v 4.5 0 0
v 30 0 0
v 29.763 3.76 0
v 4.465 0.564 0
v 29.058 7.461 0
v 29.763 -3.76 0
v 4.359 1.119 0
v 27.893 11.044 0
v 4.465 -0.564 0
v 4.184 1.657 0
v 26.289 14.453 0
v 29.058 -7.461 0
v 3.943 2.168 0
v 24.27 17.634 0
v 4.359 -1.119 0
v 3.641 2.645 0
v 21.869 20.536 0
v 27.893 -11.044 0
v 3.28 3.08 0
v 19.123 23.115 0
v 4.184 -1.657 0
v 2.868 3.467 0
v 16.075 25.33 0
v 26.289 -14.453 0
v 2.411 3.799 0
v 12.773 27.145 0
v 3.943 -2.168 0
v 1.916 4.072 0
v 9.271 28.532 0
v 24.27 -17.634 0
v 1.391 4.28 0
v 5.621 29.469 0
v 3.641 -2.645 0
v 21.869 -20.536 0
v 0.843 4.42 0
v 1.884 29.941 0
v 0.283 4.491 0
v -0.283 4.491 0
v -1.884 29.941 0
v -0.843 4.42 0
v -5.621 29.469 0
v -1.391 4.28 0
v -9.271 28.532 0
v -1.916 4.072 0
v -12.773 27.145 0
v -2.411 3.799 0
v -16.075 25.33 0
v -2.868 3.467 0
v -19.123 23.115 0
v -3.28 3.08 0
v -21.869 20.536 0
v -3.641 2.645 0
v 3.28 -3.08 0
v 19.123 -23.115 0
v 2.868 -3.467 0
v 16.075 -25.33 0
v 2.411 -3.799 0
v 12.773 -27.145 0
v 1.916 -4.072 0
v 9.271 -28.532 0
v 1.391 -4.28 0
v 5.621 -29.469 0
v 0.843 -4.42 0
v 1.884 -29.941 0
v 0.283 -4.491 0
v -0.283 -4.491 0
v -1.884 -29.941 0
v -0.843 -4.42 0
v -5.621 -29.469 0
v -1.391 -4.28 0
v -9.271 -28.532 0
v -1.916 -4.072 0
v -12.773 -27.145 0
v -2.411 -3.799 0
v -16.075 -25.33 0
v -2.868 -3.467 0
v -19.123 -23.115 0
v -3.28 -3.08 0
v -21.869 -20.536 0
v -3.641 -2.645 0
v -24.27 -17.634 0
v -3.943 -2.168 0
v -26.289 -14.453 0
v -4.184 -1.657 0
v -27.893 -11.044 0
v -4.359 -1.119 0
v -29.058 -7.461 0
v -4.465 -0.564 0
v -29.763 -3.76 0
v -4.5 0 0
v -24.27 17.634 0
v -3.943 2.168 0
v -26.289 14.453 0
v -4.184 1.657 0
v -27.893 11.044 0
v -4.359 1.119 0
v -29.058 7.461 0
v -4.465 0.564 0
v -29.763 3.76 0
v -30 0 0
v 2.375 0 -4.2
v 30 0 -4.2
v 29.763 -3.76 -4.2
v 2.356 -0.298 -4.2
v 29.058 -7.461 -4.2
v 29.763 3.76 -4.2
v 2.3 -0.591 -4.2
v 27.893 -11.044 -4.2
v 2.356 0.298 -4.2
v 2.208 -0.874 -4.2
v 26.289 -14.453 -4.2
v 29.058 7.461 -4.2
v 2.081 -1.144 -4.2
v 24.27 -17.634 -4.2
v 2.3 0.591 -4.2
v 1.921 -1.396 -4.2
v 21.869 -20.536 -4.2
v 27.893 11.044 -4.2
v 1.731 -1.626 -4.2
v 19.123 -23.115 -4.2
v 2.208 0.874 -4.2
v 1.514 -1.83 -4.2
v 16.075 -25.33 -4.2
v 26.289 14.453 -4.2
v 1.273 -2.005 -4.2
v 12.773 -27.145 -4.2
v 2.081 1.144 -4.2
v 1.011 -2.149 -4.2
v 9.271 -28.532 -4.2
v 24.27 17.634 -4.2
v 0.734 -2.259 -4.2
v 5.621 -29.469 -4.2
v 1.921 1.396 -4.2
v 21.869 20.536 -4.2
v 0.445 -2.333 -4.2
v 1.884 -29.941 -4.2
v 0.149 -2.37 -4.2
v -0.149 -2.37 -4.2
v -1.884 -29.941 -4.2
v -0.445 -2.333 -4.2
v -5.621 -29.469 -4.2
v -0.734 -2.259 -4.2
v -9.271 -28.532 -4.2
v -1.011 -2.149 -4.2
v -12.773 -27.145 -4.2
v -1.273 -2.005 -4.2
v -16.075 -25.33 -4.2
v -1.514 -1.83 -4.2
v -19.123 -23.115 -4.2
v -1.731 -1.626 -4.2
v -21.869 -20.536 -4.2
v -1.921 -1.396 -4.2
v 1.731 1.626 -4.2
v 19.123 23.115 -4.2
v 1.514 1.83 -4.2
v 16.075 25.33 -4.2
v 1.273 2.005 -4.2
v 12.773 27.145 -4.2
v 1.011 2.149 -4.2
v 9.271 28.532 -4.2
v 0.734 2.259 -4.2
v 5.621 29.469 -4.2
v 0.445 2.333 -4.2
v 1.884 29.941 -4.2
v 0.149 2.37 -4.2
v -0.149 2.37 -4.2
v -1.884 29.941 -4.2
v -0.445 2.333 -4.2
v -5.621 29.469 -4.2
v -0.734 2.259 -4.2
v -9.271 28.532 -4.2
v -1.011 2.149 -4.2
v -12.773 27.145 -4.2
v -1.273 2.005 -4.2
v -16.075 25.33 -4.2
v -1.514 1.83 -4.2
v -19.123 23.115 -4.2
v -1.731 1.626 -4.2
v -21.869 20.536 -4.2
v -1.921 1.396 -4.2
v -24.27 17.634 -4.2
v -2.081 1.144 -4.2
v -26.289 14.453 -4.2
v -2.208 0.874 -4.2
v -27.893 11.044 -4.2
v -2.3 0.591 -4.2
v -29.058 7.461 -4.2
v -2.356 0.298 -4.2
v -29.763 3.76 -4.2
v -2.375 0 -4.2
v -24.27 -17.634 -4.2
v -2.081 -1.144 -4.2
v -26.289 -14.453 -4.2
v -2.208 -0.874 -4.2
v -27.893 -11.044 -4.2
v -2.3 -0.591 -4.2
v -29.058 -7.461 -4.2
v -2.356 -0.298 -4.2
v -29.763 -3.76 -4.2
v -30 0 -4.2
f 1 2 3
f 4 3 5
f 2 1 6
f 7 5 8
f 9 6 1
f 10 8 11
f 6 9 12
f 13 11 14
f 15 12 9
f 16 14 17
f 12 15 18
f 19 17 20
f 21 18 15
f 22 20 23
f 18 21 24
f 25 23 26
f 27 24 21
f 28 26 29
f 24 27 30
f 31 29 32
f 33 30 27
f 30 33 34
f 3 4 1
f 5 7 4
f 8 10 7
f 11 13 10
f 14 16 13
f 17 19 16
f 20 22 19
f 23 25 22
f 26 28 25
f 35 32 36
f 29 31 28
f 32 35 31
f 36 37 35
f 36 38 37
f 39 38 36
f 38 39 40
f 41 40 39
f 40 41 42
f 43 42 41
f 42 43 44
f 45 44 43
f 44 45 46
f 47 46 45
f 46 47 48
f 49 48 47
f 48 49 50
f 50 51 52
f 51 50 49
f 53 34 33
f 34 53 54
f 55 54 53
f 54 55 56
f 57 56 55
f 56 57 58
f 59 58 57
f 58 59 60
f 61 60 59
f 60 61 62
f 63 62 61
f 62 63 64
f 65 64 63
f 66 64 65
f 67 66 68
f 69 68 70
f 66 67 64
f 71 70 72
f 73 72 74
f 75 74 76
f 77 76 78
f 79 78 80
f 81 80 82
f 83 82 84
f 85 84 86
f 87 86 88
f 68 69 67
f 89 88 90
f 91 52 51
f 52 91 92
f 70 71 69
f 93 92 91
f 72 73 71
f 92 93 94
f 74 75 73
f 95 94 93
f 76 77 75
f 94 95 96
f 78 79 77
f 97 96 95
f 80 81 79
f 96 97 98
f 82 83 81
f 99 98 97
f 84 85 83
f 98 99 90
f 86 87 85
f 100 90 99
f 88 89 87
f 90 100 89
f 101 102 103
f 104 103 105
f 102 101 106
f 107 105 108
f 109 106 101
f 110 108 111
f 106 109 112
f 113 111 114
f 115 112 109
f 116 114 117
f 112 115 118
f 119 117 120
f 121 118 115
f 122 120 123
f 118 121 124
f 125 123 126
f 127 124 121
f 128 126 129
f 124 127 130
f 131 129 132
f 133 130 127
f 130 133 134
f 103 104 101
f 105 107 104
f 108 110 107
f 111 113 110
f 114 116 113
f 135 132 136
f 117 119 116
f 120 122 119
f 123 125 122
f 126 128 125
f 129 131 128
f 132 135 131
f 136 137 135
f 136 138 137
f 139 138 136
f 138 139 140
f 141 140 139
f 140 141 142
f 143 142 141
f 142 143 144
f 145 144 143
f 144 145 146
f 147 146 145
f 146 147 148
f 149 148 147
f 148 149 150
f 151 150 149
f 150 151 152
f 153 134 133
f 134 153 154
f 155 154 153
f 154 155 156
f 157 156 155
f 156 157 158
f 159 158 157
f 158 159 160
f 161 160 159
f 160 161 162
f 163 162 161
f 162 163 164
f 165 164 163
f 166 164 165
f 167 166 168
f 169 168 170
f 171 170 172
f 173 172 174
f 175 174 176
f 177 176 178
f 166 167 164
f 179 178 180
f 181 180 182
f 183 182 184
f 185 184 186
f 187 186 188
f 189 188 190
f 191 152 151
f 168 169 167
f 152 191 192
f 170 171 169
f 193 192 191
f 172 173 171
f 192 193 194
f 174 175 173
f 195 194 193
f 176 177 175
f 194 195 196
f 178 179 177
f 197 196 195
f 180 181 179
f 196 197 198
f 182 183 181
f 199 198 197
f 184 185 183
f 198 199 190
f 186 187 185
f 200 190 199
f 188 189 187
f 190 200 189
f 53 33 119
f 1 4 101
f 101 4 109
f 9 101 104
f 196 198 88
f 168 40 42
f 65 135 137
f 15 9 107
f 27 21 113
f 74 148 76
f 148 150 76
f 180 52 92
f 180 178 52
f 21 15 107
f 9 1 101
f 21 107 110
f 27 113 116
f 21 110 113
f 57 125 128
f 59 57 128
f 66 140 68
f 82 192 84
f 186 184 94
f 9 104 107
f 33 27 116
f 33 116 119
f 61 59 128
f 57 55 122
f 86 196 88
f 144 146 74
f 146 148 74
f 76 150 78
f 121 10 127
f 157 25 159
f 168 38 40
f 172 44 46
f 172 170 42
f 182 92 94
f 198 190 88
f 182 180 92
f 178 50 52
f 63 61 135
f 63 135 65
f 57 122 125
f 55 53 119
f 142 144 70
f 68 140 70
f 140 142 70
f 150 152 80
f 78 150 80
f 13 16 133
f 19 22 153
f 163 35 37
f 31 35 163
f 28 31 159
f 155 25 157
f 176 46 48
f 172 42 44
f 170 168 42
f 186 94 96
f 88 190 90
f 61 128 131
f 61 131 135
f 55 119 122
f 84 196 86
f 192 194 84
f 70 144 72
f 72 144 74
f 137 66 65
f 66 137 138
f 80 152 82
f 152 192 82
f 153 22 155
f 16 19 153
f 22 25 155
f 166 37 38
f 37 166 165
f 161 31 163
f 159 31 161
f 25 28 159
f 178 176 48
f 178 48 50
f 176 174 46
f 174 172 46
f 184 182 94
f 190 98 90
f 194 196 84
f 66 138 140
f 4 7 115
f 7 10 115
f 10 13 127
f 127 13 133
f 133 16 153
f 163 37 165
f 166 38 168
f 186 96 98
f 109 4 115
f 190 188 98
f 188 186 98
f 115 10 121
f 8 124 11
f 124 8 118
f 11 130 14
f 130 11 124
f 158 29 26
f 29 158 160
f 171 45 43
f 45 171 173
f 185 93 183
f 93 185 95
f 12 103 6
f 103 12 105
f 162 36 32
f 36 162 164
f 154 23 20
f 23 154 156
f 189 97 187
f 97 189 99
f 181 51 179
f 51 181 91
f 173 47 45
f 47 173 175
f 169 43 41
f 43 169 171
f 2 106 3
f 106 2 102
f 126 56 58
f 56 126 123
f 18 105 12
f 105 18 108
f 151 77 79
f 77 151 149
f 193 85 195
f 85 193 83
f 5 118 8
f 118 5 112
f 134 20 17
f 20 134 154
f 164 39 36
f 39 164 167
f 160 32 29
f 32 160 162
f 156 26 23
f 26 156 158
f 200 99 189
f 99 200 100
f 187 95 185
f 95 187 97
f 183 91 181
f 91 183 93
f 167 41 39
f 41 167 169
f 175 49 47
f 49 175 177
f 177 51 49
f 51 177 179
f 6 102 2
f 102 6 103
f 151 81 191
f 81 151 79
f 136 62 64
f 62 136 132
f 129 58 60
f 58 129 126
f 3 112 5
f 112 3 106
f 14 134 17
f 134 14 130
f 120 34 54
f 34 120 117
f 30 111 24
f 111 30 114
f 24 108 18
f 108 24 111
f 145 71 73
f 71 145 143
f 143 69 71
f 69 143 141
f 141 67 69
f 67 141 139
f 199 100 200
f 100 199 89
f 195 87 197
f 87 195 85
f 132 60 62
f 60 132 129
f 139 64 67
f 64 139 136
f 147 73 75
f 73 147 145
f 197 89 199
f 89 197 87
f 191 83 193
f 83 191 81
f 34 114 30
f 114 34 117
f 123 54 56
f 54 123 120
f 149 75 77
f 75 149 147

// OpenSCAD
$fn = 50;


difference() {
	union() {
		translate(v = [0, 0, -4.2000000000]) {
			cylinder(h = 4.2000000000, r = 30.0000000000);
		}
	}
	union() {
		translate(v = [0, 0, 0]) {
			rotate(a = [0, 0, 0]) {
				difference() {
					union() {
						translate(v = [0, 0, -4.2000000000]) {
							cylinder(h = 4.2000000000, r = 2.2500000000);
						}
						translate(v = [0, 0, -4.2000000000]) {
							cylinder(h = 4.2000000000, r1 = 2.3750000000, r2 = 4.5000000000);
						}
						translate(v = [0, 0, -4.2000000000]) {
							cylinder(h = 4.2000000000, r = 2.3750000000);
						}
						translate(v = [0, 0, -4.2000000000]) {
							cylinder(h = 4.2000000000, r = 2.2500000000);
						}
					}
					union();
				}
			}
		}
	}
}
